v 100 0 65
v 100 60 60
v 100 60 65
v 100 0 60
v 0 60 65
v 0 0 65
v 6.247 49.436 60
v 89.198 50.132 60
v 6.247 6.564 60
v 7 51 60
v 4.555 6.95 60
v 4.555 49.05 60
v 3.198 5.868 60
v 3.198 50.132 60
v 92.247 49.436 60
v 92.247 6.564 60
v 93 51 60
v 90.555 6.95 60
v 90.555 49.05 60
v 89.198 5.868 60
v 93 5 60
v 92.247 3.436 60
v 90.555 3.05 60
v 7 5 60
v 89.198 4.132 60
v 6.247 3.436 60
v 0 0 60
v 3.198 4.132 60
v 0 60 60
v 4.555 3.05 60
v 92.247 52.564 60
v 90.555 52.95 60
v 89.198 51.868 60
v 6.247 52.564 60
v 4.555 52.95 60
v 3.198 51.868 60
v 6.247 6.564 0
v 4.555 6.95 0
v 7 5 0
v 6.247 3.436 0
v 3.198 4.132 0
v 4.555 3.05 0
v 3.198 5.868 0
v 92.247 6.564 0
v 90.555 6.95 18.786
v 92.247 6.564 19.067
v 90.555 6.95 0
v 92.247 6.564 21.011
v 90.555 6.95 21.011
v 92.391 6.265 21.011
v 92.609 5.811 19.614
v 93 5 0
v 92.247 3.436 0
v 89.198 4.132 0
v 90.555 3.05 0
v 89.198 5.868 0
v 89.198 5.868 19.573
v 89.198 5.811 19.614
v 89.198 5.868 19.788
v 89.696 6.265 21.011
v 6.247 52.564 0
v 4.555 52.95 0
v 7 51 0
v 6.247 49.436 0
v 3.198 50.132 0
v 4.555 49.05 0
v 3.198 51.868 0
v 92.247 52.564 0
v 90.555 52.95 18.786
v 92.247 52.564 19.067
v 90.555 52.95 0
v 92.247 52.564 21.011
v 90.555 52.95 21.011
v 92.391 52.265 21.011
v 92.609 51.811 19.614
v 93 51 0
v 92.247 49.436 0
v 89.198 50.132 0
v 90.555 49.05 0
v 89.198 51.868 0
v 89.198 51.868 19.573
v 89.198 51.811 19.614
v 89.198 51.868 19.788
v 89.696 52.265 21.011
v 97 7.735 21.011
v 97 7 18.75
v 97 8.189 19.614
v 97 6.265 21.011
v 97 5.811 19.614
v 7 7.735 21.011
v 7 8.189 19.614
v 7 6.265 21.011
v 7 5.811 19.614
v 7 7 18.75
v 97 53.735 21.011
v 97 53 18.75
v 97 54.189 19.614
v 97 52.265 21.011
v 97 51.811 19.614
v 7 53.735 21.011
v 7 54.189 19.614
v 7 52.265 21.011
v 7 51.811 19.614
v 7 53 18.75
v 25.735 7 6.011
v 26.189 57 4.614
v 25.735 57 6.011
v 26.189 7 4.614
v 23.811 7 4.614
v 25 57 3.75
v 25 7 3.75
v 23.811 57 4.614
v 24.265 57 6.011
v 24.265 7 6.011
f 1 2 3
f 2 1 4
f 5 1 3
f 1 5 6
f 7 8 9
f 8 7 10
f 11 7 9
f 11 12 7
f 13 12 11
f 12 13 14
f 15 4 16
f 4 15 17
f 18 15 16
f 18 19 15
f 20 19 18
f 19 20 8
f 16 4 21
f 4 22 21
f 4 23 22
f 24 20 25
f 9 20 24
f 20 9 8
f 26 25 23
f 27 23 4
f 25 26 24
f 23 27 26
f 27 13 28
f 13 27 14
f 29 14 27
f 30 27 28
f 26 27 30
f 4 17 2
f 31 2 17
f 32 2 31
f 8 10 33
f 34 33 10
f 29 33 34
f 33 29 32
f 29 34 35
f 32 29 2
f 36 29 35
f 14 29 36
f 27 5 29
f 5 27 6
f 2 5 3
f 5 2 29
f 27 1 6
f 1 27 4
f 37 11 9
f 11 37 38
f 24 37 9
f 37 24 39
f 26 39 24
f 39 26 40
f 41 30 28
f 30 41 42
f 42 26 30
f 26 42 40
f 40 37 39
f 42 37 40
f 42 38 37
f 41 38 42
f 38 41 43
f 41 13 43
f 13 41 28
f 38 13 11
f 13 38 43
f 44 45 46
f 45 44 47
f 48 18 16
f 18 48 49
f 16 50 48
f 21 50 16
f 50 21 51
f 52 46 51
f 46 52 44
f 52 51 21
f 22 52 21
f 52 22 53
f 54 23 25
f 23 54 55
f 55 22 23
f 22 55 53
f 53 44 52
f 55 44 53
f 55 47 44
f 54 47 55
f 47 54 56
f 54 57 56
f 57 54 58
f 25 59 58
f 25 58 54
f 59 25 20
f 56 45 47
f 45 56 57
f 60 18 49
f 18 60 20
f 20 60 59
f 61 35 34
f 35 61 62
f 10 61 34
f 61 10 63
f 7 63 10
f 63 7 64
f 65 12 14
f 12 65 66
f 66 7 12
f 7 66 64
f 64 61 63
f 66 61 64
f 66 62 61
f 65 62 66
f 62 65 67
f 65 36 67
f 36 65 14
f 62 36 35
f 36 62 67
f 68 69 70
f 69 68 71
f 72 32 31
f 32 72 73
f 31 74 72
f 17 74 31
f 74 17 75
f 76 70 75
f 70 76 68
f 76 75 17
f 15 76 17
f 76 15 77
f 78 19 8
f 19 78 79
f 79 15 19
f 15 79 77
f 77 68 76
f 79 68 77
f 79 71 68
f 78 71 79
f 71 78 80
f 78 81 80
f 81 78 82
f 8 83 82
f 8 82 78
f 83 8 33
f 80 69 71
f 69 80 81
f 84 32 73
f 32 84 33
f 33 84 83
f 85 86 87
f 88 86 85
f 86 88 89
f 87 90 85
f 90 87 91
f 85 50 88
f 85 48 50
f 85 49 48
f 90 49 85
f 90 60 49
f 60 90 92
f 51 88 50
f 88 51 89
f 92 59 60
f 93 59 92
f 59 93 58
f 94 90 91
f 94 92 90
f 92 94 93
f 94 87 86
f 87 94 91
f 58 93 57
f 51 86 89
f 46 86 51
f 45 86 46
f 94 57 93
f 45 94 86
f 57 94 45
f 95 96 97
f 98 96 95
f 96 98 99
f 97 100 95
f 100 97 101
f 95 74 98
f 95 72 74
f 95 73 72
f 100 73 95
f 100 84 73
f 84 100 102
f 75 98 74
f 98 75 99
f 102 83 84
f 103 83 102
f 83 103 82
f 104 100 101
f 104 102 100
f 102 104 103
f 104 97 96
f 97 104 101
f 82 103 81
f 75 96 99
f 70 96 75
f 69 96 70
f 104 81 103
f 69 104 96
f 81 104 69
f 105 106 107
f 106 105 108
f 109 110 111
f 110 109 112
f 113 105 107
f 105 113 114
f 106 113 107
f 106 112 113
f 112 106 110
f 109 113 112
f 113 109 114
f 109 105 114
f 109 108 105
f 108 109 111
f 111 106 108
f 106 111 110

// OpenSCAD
// Parameters
tabletop_length = 100;
tabletop_width = 60;
tabletop_thickness = 5;

leg_diameter = 4;
leg_height = 60;

side_bar_diameter = 2.5;
side_bar_length = 90;

bottom_bar_diameter = 2.5;
bottom_bar_length = 50;

leg_offset_x = 5;
leg_offset_y = 5;

// Modules
module tabletop() {
    cube([tabletop_length, tabletop_width, tabletop_thickness], center = false);
}

module table_leg() {
    cylinder(h = leg_height, d = leg_diameter, center = false);
}

module side_support_bar() {
    rotate([0, 90, 0])
        cylinder(h = side_bar_length, d = side_bar_diameter, center = false);
}

module bottom_support_bar() {
    rotate([0, 90, 90])
        cylinder(h = bottom_bar_length, d = bottom_bar_diameter, center = false);
}

// Assembly
translate([0, 0, leg_height])
    tabletop();

// Legs
translate([leg_offset_x, leg_offset_y, 0])
    table_leg();

translate([tabletop_length - leg_offset_x - leg_diameter, leg_offset_y, 0])
    table_leg();

translate([leg_offset_x, tabletop_width - leg_offset_y - leg_diameter, 0])
    table_leg();

translate([tabletop_length - leg_offset_x - leg_diameter, tabletop_width - leg_offset_y - leg_diameter, 0])
    table_leg();

// Side support bars (long sides)
translate([leg_offset_x + leg_diameter / 2, leg_offset_y + leg_diameter / 2, 20])
    side_support_bar();

translate([leg_offset_x + leg_diameter / 2, tabletop_width - leg_offset_y - leg_diameter / 2, 20])
    side_support_bar();

// Bottom support bar (short side)
translate([tabletop_length / 2 - bottom_bar_length / 2, leg_offset_y + leg_diameter / 2, 5])
    bottom_support_bar();
